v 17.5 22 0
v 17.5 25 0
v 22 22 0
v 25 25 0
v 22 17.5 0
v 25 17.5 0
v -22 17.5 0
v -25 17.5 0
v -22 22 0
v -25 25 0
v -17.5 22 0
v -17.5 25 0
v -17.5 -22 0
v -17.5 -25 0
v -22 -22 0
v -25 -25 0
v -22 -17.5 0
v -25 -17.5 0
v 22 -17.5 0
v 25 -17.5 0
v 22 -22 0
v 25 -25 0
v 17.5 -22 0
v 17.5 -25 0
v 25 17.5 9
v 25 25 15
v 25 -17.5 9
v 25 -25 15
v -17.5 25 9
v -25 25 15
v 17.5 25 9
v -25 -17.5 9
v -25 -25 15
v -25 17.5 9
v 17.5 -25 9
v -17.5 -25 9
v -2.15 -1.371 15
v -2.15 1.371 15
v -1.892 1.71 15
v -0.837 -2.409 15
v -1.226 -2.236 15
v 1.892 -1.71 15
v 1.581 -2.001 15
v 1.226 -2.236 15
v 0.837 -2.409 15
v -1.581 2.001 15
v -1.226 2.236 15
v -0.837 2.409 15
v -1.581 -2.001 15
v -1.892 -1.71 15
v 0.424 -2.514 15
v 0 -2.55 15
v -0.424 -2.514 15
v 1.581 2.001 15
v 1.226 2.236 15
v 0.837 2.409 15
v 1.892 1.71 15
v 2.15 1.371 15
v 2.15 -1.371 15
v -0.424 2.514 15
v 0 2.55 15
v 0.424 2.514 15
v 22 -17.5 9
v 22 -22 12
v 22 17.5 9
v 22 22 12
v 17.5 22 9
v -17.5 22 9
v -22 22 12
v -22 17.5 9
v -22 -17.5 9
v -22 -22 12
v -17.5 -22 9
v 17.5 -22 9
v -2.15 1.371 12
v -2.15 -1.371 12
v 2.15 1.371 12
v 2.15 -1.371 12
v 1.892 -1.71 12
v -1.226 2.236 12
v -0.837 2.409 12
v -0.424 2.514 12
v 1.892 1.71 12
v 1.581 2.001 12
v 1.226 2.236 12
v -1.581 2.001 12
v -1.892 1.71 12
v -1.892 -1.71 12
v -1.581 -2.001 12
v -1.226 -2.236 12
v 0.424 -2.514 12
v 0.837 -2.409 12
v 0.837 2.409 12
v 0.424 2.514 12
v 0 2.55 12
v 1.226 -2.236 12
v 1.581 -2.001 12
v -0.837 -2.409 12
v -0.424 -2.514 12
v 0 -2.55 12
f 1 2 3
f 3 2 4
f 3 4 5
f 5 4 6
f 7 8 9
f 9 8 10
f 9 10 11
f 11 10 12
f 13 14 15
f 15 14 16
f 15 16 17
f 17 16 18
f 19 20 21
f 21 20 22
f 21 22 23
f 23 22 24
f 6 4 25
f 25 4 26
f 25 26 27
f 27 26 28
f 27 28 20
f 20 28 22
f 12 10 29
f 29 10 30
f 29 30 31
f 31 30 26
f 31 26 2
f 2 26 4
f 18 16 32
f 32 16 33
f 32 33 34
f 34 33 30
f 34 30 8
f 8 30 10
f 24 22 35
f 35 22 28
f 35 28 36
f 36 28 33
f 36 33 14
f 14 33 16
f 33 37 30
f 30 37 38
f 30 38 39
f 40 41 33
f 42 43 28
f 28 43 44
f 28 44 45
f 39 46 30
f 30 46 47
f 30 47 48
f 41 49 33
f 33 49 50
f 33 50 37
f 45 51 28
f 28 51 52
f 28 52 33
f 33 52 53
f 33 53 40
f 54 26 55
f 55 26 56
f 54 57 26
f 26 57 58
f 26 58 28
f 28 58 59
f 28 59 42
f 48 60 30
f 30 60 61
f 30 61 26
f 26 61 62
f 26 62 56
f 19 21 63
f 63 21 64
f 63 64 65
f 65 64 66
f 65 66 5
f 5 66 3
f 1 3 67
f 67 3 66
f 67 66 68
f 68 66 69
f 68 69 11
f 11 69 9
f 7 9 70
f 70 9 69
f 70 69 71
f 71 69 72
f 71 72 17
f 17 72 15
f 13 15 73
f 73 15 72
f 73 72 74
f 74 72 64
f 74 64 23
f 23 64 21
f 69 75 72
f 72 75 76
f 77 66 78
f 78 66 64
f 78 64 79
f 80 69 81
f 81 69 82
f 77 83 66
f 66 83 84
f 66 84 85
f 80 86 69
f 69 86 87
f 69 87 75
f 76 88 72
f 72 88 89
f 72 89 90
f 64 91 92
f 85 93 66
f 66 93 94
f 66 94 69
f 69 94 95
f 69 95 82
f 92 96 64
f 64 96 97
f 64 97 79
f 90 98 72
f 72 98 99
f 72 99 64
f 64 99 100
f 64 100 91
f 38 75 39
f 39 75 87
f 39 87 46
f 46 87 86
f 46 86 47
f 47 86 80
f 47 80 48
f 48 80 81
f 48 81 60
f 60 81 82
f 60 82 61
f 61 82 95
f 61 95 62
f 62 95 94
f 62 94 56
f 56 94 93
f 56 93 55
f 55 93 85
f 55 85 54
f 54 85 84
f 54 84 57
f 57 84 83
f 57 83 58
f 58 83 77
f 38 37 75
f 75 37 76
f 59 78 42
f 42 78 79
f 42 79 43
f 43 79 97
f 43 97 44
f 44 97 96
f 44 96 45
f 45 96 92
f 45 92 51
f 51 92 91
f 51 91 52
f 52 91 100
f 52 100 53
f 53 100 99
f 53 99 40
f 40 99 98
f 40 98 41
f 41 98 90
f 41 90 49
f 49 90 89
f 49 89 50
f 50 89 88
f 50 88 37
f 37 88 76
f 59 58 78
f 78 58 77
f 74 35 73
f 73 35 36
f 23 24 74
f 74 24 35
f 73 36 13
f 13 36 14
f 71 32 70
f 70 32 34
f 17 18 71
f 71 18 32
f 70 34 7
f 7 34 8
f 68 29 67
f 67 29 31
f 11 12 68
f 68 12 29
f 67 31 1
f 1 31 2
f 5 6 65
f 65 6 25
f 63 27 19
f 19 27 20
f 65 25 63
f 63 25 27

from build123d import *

# Parameters (mm, degrees)
SKETCH1_W               = 50
SKETCH1_H               = 50
BOSS_EXTRUDE1_DEPTH     = 15
SHELL1_T                = -3
CUT_EXTRUDE1_DEPTH      = 1
CUT_EXTRUDE1_DEPTH_BACK = 16
CUT_EXTRUDE2_DEPTH      = 9


with BuildPart() as part:
    # Sketch1 → Boss-Extrude1 (new body)
    with BuildSketch(Plane.XY):
        Rectangle(SKETCH1_W, SKETCH1_H)
    extrude(amount=BOSS_EXTRUDE1_DEPTH)

    # Shell1
    shell1_openings = [part.faces().sort_by_distance(p)[0] for p in [
        (0, 0, 0),
    ]]
    offset(amount=SHELL1_T, openings=shell1_openings, kind=Kind.INTERSECTION)

    # Sketch2 → Cut-Extrude1 (cut, two sides)
    with BuildSketch(Plane(origin=(0, 0, 0), x_dir=(-1, 0, 0), z_dir=(0, 0, -1))) as cut_extrude1_sk:
        with BuildLine():
            Line((-2.15, 1.37113092), (-2.15, -1.37113092))
            ThreePointArc((-2.15, -1.37113092), (0, -2.55), (2.15, -1.37113092))
            Line((2.15, -1.37113092), (2.15, 1.37113092))
            ThreePointArc((2.15, 1.37113092), (0, 2.55), (-2.15, 1.37113092))
        make_face()
    extrude(amount=CUT_EXTRUDE1_DEPTH, mode=Mode.SUBTRACT)
    extrude(cut_extrude1_sk.sketch, amount=-CUT_EXTRUDE1_DEPTH_BACK, mode=Mode.SUBTRACT)

    # Sketch4 → Cut-Extrude2 (cut)
    with BuildSketch(Plane(origin=(0, 0, 0), x_dir=(-1, 0, 0), z_dir=(0, 0, -1))):
        Polygon((-17.5, 17.5), (-17.5, 27.948399717), (17.5, 27.948399717), (17.5, 17.5), (26.941451912, 17.5), (26.941451912, -17.5), (17.5, -17.5), (17.5, -27.948399717), (-17.5, -27.948399717), (-17.5, -17.5), (-26.941451912, -17.5), (-26.941451912, 17.5), align=None)
    extrude(amount=-CUT_EXTRUDE2_DEPTH, mode=Mode.SUBTRACT)


solid = part.part
